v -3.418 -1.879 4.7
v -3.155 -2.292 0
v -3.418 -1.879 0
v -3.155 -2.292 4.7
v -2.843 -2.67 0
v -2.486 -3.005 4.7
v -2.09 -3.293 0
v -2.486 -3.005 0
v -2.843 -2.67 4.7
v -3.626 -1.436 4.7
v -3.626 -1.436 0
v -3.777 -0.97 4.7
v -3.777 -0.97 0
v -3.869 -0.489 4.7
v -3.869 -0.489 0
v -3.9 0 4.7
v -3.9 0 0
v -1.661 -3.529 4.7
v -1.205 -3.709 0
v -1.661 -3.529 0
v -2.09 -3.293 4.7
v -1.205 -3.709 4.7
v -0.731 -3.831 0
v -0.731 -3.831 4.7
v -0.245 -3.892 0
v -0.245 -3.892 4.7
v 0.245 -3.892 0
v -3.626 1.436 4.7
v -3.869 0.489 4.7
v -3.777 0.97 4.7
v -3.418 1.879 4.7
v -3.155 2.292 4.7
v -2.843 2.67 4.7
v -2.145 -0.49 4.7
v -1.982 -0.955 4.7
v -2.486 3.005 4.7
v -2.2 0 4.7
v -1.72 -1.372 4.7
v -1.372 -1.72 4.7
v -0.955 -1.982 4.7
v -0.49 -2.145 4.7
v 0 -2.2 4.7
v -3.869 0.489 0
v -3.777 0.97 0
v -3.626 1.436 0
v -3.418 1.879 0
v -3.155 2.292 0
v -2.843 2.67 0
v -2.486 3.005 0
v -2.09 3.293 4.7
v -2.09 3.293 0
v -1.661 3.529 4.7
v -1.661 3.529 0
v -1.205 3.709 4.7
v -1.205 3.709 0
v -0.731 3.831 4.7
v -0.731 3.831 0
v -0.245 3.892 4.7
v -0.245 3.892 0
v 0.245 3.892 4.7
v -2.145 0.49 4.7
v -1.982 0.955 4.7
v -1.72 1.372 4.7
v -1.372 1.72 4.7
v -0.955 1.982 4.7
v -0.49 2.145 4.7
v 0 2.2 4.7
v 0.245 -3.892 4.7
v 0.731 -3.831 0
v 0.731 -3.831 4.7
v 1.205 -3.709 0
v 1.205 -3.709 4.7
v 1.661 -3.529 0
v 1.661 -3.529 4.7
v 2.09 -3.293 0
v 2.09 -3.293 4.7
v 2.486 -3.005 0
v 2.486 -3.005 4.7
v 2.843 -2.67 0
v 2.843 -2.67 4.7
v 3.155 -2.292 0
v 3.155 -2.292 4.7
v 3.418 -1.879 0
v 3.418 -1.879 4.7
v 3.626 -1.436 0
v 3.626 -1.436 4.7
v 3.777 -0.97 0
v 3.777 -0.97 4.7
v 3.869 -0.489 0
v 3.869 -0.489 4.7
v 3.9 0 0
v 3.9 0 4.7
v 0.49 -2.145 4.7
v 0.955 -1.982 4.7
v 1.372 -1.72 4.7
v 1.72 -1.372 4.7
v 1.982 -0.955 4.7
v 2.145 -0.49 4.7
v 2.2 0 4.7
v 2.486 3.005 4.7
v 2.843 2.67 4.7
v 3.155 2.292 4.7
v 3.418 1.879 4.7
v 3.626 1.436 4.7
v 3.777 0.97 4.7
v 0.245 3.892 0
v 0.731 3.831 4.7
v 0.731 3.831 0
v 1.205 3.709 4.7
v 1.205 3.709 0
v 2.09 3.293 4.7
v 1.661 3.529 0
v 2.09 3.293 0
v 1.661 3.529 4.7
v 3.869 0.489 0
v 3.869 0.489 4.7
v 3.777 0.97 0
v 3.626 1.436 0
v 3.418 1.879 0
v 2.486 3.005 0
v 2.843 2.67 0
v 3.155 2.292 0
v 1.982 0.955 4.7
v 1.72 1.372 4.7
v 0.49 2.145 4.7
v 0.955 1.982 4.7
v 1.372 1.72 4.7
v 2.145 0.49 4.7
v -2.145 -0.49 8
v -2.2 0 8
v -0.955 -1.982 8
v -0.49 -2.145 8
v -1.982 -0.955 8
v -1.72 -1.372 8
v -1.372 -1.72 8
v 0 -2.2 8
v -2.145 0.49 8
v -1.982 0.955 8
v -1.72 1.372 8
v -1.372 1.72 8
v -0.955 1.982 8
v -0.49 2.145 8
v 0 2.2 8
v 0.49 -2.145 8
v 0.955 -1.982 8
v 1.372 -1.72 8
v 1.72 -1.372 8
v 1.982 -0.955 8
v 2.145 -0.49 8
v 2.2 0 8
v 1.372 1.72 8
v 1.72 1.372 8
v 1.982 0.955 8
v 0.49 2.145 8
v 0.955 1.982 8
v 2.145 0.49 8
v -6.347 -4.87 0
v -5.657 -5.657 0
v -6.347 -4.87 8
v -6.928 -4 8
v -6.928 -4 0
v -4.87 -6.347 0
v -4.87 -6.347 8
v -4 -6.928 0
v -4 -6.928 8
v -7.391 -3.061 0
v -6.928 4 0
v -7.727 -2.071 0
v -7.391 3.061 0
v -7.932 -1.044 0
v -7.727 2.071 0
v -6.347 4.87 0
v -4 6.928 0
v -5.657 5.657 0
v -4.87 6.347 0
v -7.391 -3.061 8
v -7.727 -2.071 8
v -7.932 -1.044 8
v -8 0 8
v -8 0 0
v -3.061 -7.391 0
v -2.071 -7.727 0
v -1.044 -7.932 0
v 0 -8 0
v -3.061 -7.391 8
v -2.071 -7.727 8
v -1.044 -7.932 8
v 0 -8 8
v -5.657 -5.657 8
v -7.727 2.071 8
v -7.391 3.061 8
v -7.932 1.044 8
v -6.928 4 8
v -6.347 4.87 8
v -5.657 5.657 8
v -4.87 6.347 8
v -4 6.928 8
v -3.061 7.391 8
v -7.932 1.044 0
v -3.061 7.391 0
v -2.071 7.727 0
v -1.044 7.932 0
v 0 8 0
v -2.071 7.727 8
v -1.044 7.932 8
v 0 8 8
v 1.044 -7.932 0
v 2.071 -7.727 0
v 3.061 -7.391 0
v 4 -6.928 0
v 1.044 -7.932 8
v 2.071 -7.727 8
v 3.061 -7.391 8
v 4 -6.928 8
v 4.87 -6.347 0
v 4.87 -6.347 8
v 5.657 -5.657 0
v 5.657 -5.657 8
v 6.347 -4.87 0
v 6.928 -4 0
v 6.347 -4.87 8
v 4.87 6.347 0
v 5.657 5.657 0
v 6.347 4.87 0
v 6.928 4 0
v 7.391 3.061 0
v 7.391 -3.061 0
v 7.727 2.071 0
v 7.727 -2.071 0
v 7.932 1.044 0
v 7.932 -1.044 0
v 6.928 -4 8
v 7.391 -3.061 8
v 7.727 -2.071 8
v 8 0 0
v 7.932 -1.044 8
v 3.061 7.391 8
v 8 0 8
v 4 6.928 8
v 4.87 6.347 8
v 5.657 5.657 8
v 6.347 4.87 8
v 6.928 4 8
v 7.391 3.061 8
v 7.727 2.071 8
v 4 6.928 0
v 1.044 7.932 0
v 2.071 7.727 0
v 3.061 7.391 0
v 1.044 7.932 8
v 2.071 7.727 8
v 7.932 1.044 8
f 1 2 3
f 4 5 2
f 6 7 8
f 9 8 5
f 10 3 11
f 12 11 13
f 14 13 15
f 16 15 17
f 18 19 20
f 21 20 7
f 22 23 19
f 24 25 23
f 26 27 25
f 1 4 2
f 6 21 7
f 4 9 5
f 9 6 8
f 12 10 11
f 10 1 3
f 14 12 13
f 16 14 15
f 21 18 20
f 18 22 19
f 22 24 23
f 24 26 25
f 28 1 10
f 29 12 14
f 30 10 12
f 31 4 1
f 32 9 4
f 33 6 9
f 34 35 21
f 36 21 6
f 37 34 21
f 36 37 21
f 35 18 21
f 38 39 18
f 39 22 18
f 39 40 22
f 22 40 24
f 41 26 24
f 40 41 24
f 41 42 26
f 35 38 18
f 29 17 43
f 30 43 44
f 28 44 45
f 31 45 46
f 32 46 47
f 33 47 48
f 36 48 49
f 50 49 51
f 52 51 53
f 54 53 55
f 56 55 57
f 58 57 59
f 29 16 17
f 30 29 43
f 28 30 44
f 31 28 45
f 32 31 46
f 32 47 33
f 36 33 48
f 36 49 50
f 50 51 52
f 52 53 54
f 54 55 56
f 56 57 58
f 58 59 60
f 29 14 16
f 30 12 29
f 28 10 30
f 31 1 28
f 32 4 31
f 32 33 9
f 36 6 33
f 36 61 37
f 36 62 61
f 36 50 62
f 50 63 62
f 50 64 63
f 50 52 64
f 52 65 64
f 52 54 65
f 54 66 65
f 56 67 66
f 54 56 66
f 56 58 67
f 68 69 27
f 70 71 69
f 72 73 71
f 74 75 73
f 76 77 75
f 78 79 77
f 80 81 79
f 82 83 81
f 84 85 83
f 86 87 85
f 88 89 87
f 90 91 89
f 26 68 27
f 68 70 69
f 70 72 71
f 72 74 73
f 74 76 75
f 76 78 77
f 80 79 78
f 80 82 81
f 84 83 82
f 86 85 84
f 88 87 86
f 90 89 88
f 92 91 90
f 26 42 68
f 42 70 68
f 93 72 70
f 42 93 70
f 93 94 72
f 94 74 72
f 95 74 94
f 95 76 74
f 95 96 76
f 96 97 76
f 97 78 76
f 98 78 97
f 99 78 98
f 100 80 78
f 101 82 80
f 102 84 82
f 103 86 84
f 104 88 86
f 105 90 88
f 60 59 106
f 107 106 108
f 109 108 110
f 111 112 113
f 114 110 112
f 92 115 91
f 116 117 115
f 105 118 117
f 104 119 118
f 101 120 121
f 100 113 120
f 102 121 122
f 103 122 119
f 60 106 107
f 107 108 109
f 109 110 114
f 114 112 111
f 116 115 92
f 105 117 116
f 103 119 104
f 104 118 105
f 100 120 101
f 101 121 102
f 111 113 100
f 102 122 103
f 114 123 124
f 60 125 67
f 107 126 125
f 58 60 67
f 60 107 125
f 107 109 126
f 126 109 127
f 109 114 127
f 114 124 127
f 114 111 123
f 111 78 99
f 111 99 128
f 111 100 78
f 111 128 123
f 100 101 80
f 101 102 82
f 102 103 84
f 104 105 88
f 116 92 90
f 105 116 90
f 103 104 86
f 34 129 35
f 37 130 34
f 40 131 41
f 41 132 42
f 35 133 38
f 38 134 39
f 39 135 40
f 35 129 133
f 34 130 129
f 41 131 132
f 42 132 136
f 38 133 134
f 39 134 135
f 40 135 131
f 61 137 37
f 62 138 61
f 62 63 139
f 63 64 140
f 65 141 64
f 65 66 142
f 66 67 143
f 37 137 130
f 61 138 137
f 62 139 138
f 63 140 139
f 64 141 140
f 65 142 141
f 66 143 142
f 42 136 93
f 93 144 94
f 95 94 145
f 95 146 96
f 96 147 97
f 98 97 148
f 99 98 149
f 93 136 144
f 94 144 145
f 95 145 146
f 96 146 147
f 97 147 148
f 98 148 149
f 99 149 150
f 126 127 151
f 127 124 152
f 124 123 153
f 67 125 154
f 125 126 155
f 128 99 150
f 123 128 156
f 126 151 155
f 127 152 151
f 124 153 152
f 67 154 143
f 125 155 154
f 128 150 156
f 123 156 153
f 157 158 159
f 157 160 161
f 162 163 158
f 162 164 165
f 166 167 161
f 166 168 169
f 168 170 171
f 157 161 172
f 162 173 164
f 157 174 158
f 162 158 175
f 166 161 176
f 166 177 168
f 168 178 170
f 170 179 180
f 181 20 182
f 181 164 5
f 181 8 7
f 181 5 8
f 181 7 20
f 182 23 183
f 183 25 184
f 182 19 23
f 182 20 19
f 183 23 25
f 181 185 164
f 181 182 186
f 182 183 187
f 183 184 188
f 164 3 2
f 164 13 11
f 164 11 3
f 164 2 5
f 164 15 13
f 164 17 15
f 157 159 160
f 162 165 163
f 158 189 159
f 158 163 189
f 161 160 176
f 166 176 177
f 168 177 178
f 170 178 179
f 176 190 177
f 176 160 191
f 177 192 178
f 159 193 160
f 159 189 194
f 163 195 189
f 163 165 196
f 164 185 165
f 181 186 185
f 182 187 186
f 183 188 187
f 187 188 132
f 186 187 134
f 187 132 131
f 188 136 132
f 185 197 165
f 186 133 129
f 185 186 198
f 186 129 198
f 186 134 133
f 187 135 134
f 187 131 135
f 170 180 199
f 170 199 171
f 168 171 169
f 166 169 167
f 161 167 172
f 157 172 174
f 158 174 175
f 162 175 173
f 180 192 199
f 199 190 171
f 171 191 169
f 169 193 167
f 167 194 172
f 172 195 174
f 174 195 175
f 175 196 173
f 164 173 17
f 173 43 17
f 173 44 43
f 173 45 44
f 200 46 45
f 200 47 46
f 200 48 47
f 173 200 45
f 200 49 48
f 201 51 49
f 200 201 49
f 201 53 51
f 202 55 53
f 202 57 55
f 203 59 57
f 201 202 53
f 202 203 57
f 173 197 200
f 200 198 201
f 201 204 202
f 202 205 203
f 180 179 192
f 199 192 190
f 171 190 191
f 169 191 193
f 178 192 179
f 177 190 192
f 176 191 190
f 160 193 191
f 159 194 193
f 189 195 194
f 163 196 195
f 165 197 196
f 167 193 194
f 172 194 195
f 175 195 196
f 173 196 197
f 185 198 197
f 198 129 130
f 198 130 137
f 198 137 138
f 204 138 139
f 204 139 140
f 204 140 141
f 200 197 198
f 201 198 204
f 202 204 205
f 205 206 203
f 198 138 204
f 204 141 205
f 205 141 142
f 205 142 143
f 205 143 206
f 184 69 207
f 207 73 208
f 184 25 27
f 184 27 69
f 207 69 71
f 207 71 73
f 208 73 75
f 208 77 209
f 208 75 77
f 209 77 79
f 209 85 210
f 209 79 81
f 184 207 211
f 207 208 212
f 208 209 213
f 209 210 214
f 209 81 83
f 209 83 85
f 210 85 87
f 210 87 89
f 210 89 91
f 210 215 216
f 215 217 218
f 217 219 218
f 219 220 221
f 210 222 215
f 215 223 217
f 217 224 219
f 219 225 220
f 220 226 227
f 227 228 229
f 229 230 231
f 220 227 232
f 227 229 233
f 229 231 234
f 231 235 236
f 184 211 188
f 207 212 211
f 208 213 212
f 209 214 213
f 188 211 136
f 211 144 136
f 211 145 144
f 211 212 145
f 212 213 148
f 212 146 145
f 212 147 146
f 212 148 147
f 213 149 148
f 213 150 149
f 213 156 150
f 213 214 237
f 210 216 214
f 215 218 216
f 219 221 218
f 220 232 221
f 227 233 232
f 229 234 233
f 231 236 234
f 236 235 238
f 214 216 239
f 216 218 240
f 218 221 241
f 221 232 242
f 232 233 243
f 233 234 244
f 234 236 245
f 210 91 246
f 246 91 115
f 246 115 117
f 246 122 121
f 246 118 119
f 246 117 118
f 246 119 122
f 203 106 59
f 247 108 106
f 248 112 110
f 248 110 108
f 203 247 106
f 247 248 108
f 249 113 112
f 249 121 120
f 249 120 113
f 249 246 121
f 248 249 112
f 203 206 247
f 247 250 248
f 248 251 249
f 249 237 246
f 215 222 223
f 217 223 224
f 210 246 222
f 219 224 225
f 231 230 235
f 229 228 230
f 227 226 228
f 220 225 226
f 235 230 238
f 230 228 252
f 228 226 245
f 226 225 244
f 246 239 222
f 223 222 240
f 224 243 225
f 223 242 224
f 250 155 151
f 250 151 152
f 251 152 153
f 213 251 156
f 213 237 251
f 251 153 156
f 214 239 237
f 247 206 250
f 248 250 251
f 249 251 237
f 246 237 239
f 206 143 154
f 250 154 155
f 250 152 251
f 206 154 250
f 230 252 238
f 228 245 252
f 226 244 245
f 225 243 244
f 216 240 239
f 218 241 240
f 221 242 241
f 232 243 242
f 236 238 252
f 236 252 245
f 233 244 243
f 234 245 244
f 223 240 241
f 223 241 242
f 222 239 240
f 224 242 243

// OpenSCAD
// file: ../lib/hardware.scad
// ============================================================================
// lib/hardware.scad — inserts, bearing pockets, motor patterns, race groove, helpers.
// ============================================================================
include <../config.scad>
eps = 0.01;

// Rounded box from z=0 up, corner radius r in XY.
module rbox(size, r = 3) {
    linear_extrude(height = size[2]) offset(r = r) offset(delta = -r) square([size[0], size[1]]);
}
// Cylinder along +X from x0 to x1 / along +Y / along +Z
module xcyl(d, x0, x1) { translate([x0, 0, 0]) rotate([0, 90, 0]) cylinder(d = d, h = x1 - x0); }
module ycyl(d, y0, y1) { translate([0, y0, 0]) rotate([-90, 0, 0]) cylinder(d = d, h = y1 - y0); }
module zcyl(d, z0, z1) { translate([0, 0, z0]) cylinder(d = d, h = z1 - z0); }

// Heat-set insert hole, axis -Z from z=0 (the face). size: "m3" | "m4" | "m5".
module insert_hole(size = "m3", extra = insert_extra) {
    d = size == "m3" ? m3_insert_d : size == "m4" ? m4_insert_d : m5_insert_d;
    h = size == "m3" ? m3_insert_h : size == "m4" ? m4_insert_h : m5_insert_h;
    pilot = size == "m3" ? 2.6 : size == "m4" ? 3.4 : 4.4;
    translate([0, 0, -h]) cylinder(d = d, h = h + eps);
    translate([0, 0, -h - extra]) cylinder(d = pilot, h = extra + eps);
    translate([0, 0, -0.6]) cylinder(d1 = d, d2 = d + 1.2, h = 0.6 + eps);   // lead-in chamfer
}
// Through hole with a counterbore for the head, axis Z, face at z=0, part below.
module cbore(d, head_d, head_h, through = 30) {
    translate([0, 0, -head_h]) cylinder(d = head_d, h = head_h + eps);
    translate([0, 0, -through]) cylinder(d = d, h = through + eps);
}
// Slot (stadium) along a direction vector dir (2D), length l, width w, extruded through t (z 0..t)
module slot(w, l, t, dir = [1, 0]) {
    a = atan2(dir[1], dir[0]);
    rotate(a) hull() { translate([-l / 2, 0, -eps]) cylinder(d = w, h = t + 2 * eps); translate([l / 2, 0, -eps]) cylinder(d = w, h = t + 2 * eps); }
}

// 608 pocket open on +Z (z=0 is the open face), with a lip hole below for the stub.
module bearing_pocket(b = b608, lip_hole = undef) {
    od = b[1] + fit_bearing;
    lh = lip_hole == undef ? b[0] + 1.5 : lip_hole;
    translate([0, 0, -b[2]]) cylinder(d = od, h = b[2] + eps);
    translate([0, 0, -50]) cylinder(d = lh, h = 100);
}

// NEMA 17 face cut along Z through thickness t (z 0..t); slot_l > 0 slots the bolt holes along slot_dir.
module nema17_cut(t, slot_l = 0, slot_dir = [0, 1], boss_d = motor_boss_d + fit_hole) {
    for (sx = [-1, 1], sy = [-1, 1]) translate([sx * motor_bolt_pitch / 2, sy * motor_bolt_pitch / 2, 0])
        if (slot_l > 0) slot(motor_bolt_d, slot_l, t, slot_dir); else translate([0, 0, -eps]) cylinder(d = motor_bolt_d, h = t + 2 * eps);
    translate([0, 0, -eps]) cylinder(d = boss_d, h = t + 2 * eps);
}
// Preview NEMA 17: face at z=0, shaft +Z, body below.
module nema17_body() {
    color("silver") translate([-motor_w / 2, -motor_w / 2, -motor_l]) cube([motor_w, motor_w, motor_l]);
    color("gray") cylinder(d = motor_boss_d - 0.3, h = motor_boss_h);
    color("gray") cylinder(d = motor_shaft_d, h = motor_shaft_l);
}
// D-shaft bore along +Z from z=0 to depth.
module d_bore(depth, d = motor_shaft_d + 0.25, flat = motor_shaft_flat + 0.15) {
    translate([0, 0, -eps]) intersection() {
        cylinder(d = d, h = depth + 2 * eps);
        translate([-d / 2, -d / 2 + (d - flat), 0]) cube([d, d, depth + 2 * eps]);
    }
}

// 28BYJ-48 face cut through thickness t (z 0..t): shaft/boss hole at the origin, body centre offset
// along +Y by ffm_shaft_off, ears along X through the body centre.
module ffm_cut(t) {
    translate([0, 0, -eps]) cylinder(d = ffm_boss_d + fit_hole, h = t + 2 * eps);
    for (s = [-1, 1]) translate([s * ffm_ear_pitch / 2, ffm_shaft_off, 0]) insert_hole("m4", extra = 0);
}
// Preview 28BYJ-48: face at z=0, shaft +Z, body below (offset +Y).
module ffm_body() {
    color("steelblue") translate([0, ffm_shaft_off, -ffm_body_l]) cylinder(d = ffm_body_d, h = ffm_body_l);
    color("steelblue") translate([0, ffm_shaft_off, -1]) hull() for (s = [-1, 1]) translate([s * ffm_ear_pitch / 2, 0, 0]) cylinder(d = ffm_ear_w, h = 1);
    color("gray") cylinder(d = ffm_boss_d, h = ffm_boss_h);
    color("gray") cylinder(d = ffm_shaft_d, h = ffm_shaft_l);
}
module ffm_d_bore(depth) { d_bore(depth, d = ffm_shaft_d + 0.25, flat = ffm_shaft_flat + 0.15); }

// 90-degree V race groove cutting tool, axis Z, in a face at z=face_z, apex below it by `depth`.
module race_groove(r, depth = groove_d, face_z = 0, clearance = 0.1) {
    w = depth + clearance;
    rotate_extrude($fn = 360)
        polygon([[r - w - eps, face_z + eps], [r + w + eps, face_z + eps], [r, face_z - depth - clearance * sqrt(2)]]);
}
// Preview balls on a race, centred at z.
module race_balls(r, z) { color("silver") for (i = [0 : n_balls - 1]) rotate(i * 360 / n_balls) translate([r, 0, z]) sphere(d = ball_d, $fn = 24); }
// main file
// tray_foot.scad — puck under each corner of the controller tray (4 needed): lifts the tray off the
// ground and recesses the M4 head. Printed as modelled, counterbore on the bed.
include <../lib/hardware.scad>
module tray_foot(v = "") difference() {
    cylinder(d = tray_pad_d, h = tray_pad_h, $fn = 48);
    rotate([180, 0, 0]) cbore(m4_d, m4_head_d + 0.4, m4_head_h + 0.5);   // head pocket from the bottom, bolt up through
}
tray_foot();
